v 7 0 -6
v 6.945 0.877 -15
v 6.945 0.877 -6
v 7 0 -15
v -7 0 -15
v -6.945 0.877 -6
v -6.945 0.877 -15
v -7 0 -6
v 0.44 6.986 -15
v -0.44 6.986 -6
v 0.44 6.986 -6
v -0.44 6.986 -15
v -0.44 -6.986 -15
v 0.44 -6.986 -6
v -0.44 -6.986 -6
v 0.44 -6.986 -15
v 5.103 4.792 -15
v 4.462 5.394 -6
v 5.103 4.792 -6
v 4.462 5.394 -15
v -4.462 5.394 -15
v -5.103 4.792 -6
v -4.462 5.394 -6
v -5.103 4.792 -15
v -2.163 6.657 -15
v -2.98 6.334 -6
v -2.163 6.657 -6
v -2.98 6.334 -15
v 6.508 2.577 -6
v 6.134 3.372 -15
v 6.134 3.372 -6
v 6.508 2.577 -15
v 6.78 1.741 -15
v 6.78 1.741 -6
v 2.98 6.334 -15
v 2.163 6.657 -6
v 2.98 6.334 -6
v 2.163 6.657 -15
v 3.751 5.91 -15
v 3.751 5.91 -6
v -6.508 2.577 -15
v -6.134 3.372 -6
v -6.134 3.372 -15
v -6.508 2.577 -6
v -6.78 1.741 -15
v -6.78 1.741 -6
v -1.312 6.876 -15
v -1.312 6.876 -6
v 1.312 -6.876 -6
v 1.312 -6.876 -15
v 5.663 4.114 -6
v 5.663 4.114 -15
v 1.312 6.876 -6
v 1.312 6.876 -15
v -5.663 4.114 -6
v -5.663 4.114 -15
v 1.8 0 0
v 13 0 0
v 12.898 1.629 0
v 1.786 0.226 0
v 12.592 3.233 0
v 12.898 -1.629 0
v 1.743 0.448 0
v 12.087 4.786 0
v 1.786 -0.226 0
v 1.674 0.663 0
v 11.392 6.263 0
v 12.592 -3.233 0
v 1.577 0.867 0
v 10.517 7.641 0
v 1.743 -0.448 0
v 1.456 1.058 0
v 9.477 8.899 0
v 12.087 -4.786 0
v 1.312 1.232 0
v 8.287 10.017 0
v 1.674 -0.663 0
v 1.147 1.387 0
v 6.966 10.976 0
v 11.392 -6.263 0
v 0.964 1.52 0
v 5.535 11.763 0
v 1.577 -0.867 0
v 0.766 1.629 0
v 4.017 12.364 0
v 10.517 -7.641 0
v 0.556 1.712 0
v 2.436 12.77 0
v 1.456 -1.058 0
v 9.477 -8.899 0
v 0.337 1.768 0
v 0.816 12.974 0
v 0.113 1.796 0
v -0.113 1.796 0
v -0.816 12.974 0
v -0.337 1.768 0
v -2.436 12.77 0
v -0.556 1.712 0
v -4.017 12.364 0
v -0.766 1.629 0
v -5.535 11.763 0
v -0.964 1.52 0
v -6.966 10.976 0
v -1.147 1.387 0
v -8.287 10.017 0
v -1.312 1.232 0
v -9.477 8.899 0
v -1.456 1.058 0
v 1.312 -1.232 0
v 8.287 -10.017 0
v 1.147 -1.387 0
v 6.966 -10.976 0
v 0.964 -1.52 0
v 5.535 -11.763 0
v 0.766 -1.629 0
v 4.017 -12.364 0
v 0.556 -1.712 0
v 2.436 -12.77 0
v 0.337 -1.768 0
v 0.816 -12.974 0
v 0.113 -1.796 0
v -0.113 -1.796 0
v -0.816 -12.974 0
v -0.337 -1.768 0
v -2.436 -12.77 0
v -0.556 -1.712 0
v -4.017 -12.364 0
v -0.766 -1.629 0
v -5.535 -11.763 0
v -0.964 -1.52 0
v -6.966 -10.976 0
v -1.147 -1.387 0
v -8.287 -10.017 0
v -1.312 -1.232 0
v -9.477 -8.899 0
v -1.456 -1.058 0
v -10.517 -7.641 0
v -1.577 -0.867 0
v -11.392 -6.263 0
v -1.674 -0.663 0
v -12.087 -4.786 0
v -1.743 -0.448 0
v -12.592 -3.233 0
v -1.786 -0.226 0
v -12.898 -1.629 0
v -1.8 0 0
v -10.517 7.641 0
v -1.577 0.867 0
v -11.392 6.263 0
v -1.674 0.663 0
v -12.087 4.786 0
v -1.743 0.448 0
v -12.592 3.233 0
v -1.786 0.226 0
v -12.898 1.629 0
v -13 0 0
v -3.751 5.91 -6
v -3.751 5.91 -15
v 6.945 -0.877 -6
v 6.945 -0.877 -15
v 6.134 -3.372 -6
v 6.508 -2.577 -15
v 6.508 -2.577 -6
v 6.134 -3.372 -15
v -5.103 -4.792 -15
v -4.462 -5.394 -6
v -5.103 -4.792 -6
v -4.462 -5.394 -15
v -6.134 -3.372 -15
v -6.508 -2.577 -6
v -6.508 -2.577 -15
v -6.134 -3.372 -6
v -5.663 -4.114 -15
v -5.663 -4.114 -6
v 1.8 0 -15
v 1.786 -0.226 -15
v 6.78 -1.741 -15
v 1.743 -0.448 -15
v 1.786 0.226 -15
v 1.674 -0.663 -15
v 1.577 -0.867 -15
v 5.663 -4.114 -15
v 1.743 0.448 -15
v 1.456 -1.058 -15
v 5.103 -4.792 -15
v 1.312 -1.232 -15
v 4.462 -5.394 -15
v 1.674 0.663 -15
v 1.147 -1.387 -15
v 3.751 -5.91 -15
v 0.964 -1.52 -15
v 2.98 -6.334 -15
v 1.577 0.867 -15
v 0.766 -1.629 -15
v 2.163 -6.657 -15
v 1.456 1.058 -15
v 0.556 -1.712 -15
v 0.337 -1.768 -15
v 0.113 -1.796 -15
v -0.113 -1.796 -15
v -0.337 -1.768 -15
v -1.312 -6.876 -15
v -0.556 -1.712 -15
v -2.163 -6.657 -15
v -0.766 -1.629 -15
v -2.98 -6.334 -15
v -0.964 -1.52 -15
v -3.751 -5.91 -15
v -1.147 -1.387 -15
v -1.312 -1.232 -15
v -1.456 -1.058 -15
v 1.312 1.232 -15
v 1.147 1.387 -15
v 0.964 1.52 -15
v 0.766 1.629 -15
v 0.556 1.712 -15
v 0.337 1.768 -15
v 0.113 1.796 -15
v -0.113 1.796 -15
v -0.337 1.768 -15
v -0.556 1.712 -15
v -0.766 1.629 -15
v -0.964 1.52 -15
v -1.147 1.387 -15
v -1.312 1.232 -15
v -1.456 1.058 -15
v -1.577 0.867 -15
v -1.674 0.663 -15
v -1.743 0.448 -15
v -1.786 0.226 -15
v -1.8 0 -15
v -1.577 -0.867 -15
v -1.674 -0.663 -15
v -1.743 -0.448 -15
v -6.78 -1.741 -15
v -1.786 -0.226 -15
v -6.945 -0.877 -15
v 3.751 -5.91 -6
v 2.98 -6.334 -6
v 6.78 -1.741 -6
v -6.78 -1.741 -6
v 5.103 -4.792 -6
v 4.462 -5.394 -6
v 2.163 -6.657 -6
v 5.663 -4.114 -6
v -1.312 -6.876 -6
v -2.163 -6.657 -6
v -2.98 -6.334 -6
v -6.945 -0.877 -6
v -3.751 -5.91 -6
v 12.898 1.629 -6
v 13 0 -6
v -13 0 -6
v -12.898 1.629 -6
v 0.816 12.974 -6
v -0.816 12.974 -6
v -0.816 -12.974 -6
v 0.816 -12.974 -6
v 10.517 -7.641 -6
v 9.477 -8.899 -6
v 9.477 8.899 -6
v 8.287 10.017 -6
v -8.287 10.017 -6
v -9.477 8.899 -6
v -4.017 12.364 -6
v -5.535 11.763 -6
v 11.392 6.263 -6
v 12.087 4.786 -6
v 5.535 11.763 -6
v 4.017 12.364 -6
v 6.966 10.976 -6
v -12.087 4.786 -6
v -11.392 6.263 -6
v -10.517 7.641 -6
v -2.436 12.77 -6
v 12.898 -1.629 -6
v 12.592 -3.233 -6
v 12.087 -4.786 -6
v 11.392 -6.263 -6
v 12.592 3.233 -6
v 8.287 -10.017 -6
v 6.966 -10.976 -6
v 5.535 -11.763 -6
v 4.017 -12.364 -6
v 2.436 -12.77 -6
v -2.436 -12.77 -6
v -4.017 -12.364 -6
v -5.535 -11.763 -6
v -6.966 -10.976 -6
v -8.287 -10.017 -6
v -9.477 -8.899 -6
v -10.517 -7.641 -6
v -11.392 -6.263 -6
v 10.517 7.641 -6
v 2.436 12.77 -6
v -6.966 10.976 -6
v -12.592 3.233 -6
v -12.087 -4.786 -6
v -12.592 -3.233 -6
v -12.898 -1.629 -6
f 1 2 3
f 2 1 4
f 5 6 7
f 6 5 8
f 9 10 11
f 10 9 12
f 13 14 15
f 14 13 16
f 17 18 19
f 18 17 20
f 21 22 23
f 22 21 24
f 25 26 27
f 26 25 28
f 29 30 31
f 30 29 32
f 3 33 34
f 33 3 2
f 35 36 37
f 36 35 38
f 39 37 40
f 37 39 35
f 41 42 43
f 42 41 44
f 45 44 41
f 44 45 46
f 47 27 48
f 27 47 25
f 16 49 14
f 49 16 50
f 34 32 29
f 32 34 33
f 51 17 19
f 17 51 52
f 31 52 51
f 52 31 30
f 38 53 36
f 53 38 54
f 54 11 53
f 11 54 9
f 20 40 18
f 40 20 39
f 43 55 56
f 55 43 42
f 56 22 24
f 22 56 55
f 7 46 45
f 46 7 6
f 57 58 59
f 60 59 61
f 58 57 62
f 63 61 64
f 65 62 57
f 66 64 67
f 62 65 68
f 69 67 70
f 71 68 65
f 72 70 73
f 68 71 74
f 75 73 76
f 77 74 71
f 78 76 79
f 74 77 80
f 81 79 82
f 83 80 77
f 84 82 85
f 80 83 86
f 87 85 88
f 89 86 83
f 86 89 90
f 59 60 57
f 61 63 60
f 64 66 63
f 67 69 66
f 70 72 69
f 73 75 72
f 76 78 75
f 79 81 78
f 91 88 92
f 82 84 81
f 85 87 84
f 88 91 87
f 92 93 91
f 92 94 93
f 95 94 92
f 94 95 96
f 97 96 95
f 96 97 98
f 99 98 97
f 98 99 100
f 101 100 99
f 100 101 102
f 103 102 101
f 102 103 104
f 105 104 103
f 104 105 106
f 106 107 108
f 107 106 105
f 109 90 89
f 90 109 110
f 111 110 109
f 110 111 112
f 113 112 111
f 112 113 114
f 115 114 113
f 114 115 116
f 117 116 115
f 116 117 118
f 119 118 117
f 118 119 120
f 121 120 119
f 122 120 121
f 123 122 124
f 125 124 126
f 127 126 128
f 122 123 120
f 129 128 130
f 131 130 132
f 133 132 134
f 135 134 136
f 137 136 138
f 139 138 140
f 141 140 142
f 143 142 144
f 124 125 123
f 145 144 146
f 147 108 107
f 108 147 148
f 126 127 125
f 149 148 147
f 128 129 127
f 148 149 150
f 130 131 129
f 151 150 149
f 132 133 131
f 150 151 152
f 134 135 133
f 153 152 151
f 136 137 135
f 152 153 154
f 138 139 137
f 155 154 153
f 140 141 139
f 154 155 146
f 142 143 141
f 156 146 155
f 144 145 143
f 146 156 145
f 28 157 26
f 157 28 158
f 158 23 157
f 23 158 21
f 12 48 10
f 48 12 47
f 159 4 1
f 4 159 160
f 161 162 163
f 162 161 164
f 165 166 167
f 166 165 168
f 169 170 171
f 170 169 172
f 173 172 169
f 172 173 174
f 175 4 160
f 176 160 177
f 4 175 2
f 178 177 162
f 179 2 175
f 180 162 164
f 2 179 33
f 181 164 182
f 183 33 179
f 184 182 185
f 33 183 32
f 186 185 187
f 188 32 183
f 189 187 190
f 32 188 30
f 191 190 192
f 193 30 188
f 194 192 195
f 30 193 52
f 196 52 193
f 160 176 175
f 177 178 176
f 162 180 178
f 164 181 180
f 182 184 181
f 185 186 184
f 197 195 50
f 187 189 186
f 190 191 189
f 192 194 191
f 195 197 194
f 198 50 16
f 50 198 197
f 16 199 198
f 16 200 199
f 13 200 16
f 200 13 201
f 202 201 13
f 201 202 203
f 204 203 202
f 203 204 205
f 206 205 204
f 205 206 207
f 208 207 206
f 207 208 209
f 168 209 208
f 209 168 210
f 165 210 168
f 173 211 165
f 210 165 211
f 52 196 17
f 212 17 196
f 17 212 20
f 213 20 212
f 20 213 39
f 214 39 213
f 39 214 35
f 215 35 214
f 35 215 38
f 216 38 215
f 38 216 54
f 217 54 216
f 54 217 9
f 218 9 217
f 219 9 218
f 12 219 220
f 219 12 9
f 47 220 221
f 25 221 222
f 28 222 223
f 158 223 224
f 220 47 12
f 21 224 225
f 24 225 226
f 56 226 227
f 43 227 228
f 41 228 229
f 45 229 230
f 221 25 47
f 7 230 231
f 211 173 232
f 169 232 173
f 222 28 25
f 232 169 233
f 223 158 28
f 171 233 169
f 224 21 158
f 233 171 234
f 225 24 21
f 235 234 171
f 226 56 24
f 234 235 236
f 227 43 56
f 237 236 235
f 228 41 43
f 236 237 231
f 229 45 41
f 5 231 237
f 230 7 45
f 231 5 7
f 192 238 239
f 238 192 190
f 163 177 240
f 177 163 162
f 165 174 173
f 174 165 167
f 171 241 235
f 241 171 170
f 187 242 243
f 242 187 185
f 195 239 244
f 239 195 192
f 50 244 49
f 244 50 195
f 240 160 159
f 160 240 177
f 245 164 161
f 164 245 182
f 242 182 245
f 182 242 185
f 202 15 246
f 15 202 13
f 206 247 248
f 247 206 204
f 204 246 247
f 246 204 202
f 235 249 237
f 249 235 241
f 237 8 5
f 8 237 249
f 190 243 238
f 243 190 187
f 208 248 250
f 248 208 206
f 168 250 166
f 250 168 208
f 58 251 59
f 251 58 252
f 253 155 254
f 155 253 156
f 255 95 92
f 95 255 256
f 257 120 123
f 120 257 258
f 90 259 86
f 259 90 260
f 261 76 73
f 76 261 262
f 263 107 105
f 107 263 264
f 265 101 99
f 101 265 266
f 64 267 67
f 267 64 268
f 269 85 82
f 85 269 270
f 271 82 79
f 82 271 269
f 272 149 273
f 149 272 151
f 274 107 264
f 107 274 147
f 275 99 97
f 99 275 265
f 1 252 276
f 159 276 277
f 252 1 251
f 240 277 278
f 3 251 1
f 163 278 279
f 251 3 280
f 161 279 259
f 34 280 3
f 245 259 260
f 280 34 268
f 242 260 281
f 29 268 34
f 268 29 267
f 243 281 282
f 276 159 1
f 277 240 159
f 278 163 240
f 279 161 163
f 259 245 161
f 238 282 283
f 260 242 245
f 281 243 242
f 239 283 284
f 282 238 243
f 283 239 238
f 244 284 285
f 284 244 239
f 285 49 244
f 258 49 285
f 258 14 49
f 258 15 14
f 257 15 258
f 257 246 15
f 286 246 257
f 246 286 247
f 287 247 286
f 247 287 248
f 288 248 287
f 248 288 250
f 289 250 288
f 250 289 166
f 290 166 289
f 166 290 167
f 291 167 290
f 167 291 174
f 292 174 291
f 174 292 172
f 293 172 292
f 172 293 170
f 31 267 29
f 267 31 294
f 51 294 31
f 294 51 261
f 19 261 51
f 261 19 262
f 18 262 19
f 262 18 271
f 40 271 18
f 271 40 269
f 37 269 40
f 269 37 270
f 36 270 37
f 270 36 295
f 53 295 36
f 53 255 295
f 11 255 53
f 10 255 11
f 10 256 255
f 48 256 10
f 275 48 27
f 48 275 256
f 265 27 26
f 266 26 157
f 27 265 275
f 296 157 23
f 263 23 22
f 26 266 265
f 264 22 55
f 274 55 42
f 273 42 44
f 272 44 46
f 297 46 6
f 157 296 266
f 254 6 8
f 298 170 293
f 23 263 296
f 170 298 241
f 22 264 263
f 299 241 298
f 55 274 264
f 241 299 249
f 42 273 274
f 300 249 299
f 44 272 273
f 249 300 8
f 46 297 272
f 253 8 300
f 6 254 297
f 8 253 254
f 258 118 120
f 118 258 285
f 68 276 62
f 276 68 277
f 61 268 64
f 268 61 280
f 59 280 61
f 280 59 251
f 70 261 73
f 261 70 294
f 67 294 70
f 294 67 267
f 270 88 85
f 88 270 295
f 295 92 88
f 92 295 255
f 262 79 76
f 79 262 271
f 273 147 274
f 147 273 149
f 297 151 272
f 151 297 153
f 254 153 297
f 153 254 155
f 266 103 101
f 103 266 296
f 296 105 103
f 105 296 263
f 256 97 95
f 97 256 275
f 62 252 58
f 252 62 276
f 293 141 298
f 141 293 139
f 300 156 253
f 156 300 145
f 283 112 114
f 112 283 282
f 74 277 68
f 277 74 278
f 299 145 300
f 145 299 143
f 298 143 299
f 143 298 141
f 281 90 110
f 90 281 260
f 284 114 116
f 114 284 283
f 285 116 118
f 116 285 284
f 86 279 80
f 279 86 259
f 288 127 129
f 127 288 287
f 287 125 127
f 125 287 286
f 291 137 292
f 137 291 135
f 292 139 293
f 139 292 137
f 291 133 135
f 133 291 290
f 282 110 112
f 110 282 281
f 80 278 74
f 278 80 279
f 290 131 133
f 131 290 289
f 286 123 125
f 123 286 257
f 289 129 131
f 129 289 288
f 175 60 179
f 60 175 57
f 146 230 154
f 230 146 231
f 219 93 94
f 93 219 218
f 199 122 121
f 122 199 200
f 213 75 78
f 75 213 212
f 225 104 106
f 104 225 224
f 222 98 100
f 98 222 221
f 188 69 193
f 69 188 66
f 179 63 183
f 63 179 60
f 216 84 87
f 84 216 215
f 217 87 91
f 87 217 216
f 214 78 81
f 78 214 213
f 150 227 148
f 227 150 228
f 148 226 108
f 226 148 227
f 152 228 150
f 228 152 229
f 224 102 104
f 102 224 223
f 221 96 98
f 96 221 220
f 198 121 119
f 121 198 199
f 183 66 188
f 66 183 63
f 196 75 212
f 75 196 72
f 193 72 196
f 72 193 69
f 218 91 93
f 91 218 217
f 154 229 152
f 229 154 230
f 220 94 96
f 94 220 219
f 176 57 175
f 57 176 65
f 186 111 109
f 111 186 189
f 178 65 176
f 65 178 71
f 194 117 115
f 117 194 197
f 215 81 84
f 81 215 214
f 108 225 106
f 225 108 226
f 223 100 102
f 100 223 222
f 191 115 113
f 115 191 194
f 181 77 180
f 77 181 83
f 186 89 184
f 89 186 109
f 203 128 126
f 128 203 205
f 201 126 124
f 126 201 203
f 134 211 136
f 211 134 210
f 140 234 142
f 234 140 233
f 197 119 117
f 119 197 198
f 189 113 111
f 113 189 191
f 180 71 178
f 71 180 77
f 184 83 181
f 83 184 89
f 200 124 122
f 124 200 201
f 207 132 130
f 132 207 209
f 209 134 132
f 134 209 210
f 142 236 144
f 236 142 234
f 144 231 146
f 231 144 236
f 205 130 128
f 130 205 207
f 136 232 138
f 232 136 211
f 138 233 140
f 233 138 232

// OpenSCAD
$fn = 50;


difference() {
	union() {
		translate(v = [0, 0, -15.0000000000]) {
			cylinder(h = 15, r = 7.0000000000);
		}
		translate(v = [0, 0, -6.0000000000]) {
			cylinder(h = 6, r = 13.0000000000);
		}
	}
	union() {
		#translate(v = [0, 0, -15]) {
			cylinder(h = 15, r = 1.8000000000);
		}
	}
}
